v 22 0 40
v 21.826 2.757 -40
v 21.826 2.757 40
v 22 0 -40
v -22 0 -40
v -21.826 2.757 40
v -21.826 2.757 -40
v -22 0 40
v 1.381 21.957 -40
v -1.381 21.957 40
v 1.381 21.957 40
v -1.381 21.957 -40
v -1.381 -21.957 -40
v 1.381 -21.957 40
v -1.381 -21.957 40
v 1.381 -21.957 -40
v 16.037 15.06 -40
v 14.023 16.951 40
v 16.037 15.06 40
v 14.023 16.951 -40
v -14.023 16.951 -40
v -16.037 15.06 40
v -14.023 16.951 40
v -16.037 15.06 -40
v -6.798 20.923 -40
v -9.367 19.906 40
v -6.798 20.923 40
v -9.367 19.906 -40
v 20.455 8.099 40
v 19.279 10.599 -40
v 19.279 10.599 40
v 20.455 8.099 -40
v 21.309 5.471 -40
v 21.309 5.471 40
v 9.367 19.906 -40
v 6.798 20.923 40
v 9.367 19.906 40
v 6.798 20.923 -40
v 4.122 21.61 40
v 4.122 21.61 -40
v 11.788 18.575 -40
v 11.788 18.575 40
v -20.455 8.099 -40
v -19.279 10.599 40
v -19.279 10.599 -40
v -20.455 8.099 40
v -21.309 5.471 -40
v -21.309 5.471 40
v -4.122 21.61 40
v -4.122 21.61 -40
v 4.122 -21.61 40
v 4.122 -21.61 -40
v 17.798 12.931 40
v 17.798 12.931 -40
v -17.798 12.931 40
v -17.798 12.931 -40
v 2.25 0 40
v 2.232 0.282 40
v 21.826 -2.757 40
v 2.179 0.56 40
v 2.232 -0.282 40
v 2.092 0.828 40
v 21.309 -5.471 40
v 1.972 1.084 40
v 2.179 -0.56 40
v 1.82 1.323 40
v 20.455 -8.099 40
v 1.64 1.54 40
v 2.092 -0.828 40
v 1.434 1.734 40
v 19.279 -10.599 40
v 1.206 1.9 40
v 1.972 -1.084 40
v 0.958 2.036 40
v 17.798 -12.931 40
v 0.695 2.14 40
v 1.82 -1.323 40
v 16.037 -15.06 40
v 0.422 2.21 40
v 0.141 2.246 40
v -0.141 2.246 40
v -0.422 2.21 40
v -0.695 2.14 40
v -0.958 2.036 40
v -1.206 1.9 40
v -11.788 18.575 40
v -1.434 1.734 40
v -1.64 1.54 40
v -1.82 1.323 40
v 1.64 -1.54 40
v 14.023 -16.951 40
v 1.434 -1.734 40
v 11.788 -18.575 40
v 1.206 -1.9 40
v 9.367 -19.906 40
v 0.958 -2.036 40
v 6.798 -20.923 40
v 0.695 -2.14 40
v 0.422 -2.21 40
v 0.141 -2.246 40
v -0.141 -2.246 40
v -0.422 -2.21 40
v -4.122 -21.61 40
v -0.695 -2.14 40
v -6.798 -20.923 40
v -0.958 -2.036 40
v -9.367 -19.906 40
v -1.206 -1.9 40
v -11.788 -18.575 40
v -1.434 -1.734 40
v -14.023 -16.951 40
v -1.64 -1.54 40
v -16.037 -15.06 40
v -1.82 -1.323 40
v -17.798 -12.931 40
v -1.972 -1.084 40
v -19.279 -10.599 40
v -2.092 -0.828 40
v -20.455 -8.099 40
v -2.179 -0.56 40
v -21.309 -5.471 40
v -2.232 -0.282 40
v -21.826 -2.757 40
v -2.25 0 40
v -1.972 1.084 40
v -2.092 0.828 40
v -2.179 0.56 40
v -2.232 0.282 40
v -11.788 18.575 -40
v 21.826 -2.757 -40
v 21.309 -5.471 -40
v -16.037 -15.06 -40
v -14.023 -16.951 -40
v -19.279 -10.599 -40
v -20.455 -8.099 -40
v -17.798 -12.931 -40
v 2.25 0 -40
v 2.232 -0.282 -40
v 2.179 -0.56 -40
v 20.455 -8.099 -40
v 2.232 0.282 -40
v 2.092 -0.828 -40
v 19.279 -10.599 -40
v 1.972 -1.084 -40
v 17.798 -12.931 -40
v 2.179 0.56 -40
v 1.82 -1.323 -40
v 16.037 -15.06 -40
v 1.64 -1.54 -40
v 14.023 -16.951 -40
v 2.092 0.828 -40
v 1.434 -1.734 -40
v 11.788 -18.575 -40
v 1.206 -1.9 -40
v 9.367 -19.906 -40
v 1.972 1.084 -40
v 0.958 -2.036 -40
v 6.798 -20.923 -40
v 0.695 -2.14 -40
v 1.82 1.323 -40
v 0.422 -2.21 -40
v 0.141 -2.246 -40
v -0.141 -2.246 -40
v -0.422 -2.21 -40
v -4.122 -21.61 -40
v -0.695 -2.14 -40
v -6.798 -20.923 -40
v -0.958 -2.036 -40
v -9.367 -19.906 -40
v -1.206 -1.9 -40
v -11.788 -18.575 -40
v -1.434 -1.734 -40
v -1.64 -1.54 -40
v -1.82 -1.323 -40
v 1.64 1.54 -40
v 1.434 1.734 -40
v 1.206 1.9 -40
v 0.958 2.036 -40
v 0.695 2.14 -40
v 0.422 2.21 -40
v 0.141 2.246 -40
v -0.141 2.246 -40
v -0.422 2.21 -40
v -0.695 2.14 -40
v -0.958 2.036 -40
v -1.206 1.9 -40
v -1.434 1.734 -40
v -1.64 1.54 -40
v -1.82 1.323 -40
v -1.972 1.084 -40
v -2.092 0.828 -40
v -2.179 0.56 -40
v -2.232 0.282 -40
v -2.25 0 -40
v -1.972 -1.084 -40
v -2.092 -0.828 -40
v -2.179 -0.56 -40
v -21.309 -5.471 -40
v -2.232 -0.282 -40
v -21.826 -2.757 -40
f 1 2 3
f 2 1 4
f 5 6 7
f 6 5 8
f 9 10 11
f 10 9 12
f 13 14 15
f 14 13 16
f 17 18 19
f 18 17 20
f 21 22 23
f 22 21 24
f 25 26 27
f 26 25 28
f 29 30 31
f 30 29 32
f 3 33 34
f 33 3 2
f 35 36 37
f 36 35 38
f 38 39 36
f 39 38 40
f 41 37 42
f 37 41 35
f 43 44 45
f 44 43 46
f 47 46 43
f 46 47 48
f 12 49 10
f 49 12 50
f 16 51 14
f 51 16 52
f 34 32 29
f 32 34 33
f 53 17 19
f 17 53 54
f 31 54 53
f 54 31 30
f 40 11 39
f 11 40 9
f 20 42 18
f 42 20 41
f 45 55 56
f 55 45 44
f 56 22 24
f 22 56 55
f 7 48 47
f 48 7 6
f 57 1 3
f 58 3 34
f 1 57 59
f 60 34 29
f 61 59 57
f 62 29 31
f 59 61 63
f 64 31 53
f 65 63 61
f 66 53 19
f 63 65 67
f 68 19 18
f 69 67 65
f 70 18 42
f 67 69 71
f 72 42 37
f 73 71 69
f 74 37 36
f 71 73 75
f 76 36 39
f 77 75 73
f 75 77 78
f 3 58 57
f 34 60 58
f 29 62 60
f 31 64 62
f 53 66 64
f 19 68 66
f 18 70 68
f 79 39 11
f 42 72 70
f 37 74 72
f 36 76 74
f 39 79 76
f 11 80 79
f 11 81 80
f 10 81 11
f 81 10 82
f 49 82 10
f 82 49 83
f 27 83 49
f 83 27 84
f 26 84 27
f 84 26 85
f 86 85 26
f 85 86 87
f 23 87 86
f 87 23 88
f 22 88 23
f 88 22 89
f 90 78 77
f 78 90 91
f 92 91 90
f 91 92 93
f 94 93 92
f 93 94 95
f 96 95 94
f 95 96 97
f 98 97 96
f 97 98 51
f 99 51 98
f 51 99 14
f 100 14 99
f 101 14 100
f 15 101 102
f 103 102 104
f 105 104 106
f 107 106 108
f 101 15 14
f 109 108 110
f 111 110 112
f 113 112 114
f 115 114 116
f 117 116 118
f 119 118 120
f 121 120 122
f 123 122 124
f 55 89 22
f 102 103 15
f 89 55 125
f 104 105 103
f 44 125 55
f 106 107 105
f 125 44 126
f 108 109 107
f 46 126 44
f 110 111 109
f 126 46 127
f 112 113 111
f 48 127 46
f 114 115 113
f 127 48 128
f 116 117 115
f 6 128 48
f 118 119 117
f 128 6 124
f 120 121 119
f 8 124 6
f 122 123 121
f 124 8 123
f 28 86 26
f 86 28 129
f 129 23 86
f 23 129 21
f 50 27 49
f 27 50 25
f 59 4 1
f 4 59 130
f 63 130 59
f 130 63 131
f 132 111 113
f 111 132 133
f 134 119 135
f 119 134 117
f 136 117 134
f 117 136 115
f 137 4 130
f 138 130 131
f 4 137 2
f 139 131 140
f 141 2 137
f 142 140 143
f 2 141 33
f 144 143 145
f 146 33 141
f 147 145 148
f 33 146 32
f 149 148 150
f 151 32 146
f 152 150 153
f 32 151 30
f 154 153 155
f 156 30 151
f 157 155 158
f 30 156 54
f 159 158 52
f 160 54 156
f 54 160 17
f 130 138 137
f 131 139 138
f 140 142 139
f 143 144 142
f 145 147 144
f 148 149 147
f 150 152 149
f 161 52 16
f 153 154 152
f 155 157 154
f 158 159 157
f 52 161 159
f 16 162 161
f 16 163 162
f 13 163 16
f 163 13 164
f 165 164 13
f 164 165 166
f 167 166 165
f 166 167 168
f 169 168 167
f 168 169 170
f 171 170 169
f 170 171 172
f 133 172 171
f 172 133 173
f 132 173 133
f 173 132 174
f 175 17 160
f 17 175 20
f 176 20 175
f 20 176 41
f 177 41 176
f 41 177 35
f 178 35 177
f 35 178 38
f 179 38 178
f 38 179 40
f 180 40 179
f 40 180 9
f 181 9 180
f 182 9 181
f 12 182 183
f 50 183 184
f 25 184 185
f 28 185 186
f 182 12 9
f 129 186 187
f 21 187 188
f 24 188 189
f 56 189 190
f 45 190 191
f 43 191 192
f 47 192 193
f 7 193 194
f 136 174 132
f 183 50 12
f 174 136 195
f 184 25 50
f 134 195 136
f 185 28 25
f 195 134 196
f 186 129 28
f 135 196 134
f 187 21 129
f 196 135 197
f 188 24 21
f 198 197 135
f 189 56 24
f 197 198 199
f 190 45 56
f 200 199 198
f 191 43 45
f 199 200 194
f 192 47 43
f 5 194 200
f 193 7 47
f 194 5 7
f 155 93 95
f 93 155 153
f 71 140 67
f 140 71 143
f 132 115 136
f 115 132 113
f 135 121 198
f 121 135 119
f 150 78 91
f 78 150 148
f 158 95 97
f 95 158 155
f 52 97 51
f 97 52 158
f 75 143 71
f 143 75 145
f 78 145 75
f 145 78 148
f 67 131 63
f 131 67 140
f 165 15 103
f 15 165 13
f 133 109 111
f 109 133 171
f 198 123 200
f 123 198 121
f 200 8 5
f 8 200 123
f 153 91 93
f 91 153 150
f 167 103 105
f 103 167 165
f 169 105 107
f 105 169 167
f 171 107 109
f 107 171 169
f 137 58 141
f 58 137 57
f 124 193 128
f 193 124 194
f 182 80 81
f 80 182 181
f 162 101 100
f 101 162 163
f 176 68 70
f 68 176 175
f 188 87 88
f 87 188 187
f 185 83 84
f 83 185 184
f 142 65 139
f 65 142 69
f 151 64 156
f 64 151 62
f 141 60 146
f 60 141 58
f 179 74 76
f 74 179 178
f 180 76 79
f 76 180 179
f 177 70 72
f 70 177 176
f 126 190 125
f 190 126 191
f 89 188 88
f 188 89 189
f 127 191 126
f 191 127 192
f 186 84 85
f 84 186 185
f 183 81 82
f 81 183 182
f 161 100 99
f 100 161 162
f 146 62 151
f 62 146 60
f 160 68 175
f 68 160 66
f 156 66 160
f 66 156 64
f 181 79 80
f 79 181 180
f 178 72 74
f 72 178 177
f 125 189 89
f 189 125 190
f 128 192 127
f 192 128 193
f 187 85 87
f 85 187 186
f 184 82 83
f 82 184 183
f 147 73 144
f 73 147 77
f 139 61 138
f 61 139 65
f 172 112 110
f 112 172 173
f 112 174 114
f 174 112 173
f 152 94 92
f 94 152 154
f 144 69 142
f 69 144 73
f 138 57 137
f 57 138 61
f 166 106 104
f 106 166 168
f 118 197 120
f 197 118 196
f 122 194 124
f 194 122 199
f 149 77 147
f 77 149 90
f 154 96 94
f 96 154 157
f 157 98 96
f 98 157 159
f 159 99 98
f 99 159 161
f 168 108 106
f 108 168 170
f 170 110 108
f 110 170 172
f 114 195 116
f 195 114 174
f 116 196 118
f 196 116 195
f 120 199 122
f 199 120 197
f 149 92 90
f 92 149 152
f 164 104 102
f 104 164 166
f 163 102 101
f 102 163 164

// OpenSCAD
$fn = 50;


difference() {
	union() {
		translate(v = [0, 0, -40.0000000000]) {
			cylinder(h = 80, r = 22.0000000000);
		}
	}
	union() {
		translate(v = [0, 0, -100.0000000000]) {
			cylinder(h = 200, r = 2.2500000000);
		}
	}
}
